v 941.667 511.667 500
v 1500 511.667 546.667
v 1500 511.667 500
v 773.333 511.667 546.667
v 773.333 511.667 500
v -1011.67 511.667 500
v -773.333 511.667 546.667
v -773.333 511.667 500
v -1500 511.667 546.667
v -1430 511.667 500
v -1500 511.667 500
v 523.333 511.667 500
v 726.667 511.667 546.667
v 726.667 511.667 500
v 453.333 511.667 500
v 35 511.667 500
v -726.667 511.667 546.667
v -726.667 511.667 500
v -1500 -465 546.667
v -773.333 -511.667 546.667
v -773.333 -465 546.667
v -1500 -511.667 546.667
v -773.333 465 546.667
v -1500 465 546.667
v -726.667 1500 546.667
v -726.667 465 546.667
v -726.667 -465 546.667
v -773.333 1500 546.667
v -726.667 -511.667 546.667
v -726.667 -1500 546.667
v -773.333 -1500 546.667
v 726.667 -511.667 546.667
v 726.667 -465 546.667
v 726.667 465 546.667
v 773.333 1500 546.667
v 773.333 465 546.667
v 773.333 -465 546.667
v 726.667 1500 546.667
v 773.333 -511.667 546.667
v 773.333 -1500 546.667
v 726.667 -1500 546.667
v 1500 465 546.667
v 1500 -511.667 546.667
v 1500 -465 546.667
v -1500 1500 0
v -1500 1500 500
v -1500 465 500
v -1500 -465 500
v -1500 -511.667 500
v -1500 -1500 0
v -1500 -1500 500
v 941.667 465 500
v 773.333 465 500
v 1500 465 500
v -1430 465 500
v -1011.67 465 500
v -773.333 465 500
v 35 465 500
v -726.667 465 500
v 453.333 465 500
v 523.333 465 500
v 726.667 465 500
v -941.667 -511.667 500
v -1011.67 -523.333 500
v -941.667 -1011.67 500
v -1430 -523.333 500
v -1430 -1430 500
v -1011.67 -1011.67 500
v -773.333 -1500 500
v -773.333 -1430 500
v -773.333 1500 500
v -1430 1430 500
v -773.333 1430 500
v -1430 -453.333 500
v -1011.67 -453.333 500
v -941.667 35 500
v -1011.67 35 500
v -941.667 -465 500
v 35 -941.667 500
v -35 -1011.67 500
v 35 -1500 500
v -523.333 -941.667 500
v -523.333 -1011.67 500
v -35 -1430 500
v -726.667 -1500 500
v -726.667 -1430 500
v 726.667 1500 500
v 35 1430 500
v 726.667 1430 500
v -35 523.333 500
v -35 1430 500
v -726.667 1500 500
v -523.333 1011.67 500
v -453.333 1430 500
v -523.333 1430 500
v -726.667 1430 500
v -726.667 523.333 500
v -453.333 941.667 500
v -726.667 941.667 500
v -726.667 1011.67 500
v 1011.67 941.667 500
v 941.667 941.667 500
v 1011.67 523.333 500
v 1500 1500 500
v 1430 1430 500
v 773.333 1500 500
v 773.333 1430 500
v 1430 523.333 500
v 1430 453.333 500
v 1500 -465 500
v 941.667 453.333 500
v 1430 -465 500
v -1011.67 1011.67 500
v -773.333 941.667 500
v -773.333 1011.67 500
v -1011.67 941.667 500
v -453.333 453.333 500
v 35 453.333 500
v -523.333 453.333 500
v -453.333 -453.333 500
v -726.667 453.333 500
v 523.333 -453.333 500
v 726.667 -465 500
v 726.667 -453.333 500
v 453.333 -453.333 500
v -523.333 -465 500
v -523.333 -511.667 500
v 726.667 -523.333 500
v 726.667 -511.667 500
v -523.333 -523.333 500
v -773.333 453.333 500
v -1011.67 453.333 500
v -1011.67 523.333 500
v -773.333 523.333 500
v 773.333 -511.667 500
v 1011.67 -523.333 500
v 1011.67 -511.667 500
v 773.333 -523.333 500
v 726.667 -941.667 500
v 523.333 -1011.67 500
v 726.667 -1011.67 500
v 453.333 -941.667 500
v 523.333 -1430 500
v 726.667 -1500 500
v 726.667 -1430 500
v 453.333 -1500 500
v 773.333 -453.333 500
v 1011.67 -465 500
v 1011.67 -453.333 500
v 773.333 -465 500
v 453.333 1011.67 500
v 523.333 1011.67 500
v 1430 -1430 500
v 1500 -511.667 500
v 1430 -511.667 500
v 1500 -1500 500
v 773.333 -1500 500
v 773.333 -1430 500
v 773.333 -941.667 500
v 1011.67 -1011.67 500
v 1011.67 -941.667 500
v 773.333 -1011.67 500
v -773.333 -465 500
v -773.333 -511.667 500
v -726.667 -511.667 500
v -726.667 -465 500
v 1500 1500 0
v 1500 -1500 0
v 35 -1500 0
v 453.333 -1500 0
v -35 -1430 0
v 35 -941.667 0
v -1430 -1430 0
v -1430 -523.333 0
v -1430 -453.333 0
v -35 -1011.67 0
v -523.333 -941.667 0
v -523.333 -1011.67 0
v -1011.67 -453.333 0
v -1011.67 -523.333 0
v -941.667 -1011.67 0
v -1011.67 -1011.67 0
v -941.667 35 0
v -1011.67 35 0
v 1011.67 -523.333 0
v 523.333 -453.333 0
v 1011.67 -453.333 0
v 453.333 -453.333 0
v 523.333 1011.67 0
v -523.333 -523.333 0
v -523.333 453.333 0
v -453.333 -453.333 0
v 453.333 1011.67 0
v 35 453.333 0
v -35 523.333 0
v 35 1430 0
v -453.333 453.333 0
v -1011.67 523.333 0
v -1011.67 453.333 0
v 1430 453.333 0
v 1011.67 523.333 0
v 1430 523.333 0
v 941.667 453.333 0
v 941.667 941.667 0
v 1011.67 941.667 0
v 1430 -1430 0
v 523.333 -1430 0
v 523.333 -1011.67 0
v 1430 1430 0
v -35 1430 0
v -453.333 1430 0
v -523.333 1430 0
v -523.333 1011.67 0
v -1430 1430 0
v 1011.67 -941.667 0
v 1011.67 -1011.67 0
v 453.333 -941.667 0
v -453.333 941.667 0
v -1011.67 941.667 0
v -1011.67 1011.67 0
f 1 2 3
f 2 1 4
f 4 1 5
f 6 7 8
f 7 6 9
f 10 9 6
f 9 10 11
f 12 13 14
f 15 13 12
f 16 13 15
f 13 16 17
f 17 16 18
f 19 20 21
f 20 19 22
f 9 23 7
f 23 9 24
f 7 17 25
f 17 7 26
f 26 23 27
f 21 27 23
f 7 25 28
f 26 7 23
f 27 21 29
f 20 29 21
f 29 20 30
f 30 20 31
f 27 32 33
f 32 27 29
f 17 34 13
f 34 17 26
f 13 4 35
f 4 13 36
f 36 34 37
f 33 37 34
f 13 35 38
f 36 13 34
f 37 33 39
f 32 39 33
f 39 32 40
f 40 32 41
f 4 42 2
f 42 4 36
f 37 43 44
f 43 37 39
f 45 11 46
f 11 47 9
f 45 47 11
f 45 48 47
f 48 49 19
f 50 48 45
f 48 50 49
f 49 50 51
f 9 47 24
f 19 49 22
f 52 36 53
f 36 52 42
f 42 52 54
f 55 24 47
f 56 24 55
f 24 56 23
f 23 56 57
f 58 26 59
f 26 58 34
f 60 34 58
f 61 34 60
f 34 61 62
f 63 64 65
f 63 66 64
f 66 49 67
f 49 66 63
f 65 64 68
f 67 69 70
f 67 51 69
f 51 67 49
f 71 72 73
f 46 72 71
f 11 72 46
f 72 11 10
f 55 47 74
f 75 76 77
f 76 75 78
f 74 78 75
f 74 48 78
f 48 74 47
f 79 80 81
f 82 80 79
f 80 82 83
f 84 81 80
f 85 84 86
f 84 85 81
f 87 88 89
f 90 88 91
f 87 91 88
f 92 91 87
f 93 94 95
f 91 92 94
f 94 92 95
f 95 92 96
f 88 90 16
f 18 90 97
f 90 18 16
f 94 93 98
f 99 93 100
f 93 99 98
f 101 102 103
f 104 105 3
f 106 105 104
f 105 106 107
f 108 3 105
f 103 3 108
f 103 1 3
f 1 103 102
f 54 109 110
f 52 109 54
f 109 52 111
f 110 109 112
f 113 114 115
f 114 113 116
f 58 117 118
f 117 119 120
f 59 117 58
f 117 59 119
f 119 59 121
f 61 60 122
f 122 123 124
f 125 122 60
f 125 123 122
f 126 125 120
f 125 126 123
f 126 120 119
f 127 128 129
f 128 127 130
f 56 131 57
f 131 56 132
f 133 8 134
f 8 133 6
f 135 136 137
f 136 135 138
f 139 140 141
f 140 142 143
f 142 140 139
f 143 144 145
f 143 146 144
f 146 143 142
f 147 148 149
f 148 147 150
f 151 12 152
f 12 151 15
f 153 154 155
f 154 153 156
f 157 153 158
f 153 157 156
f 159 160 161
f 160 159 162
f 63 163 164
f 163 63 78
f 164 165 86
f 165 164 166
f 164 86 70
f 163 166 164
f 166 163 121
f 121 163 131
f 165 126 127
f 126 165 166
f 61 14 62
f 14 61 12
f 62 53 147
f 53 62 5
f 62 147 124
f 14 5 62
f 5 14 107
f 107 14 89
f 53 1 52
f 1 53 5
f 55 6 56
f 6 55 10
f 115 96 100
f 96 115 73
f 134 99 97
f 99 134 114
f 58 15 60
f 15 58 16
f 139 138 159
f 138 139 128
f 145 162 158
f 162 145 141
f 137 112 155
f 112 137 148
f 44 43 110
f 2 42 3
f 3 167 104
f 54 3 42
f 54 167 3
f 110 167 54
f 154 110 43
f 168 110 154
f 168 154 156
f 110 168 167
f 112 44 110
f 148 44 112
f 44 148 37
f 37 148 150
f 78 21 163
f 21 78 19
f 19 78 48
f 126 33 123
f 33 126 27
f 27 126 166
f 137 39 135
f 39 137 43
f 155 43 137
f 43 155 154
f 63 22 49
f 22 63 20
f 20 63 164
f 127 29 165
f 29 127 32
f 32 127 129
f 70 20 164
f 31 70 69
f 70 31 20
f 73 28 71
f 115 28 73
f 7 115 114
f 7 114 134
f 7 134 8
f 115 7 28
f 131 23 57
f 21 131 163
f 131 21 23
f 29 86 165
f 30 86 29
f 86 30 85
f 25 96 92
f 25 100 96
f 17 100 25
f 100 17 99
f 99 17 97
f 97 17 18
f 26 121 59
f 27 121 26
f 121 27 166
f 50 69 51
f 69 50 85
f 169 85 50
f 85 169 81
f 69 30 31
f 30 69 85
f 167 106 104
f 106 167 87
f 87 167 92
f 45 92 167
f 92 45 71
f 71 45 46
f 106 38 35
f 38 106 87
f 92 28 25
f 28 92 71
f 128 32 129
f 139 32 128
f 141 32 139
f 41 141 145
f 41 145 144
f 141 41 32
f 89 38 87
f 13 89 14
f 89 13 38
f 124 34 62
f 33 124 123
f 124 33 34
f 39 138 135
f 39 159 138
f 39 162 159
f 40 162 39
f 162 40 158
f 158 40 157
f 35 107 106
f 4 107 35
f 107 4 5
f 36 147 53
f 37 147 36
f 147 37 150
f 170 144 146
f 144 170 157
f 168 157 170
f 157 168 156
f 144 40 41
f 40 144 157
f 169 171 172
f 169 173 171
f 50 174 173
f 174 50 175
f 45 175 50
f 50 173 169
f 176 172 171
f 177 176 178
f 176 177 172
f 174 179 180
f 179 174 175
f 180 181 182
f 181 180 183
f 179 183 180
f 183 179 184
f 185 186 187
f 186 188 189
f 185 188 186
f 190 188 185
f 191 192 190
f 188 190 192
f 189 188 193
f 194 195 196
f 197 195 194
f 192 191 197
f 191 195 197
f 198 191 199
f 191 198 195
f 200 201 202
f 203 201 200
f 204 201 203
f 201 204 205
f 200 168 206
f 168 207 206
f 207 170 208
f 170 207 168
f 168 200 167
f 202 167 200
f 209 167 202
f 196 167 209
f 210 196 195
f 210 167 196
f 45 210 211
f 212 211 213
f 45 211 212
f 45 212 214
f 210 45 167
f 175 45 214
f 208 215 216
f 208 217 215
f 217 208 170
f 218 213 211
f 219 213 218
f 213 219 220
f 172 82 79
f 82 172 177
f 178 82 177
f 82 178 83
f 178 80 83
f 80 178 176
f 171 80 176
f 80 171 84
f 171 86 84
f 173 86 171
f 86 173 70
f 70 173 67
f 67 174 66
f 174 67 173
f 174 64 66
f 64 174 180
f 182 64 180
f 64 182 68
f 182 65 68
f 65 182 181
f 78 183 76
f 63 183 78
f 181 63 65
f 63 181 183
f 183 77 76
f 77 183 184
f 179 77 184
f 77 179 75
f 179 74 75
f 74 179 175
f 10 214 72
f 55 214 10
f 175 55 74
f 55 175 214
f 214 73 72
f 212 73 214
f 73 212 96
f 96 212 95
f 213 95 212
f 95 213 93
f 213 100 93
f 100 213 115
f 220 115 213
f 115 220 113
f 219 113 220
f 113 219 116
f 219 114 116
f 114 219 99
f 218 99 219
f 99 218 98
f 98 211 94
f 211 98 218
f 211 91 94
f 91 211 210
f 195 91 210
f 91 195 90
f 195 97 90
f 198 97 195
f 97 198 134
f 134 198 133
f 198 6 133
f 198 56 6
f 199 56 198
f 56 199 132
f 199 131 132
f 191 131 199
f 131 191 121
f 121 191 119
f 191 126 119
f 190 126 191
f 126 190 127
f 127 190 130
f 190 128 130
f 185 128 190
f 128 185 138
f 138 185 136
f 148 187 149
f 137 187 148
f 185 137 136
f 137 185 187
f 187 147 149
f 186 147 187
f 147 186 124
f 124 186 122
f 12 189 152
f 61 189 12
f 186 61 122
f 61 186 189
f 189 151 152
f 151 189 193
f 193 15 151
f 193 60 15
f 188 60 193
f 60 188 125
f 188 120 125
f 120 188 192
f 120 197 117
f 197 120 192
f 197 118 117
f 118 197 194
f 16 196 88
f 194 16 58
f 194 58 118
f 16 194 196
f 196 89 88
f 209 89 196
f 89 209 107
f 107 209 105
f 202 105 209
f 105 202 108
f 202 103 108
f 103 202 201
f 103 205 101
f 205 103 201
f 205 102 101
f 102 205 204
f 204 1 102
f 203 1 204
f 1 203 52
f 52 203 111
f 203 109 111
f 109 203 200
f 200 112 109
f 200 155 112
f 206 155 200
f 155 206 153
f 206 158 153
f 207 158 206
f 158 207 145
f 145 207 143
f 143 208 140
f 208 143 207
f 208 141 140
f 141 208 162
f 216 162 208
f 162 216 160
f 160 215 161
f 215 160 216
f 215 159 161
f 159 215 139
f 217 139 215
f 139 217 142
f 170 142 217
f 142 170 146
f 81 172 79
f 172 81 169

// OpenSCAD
width=3000;
wall_thickness=70;

module doolhofje(tw=width,w=wall_thickness){
    c=(tw-7*w)/6;
    h=tw/6;
    union() {
        translate([0,(tw-w)/6,h+2*w/6]) rotate([0,0,90]) cube([2*w/3,tw,2*w/3],true);
        translate([0,(tw-w)/-6,h+2*w/6]) rotate([0,0,90]) cube([2*w/3,tw,2*w/3],true);
        translate([tw/-4,0,h+2*w/6]) cube([2*w/3,tw,2*w/3],true);
        translate([tw/4,0,h+2*w/6]) cube([2*w/3,tw,2*w/3],true);
        linear_extrude(h) translate([-tw/2,-tw/2]) polygon([
            //0-10:
            [0,0],
            [3*c+4*w,0],
            [3*c+4*w,c+2*w],
            [2*c+2*w,c+2*w],
            [2*c+2*w,c+w],
            [3*c+3*w,c+w],
            [3*c+3*w,w],
            [w,w],
            [w,2*c+2*w],
            [c+w,2*c+2*w],
            //11-20:
            [c+w,c+w],
            [c+2*w,c+w],
            [c+2*w,3*c+4*w],
            [c+w,3*c+4*w],
            [c+w,2*c+3*w],
            [w,2*c+3*w],
            [w,6*c+6*w],
            [2*c+2*w,6*c+6*w],
            [2*c+2*w,5*c+6*w],
            [c+w,5*c+6*w],
            //21-30:
            [c+w,5*c+5*w],
            [2*c+3*w,5*c+5*w],
            [2*c+3*w,6*c+6*w],
            [3*c+3*w,6*c+6*w],
            [3*c+3*w,4*c+5*w],
            [c+w,4*c+5*w],
            [c+w,4*c+4*w],
            [2*c+2*w,4*c+4*w],
            [2*c+2*w,2*c+2*w],
            [5*c+6*w,2*c+2*w],
            //31-40:
            [5*c+6*w,2*c+3*w],
            [4*c+5*w,2*c+3*w],
            [4*c+5*w,5*c+6*w],
            [4*c+4*w,5*c+6*w],
            [4*c+4*w,2*c+3*w],
            [2*c+3*w,2*c+3*w],
            [2*c+3*w,4*c+4*w],
            [3*c+4*w,4*c+4*w],
            [3*c+4*w,6*c+6*w],
            [6*c+6*w,6*c+6*w],
            //41-50:
            [6*c+6*w,4*c+5*w],
            [5*c+6*w,4*c+5*w],
            [5*c+6*w,5*c+5*w],
            [5*c+5*w,5*c+5*w],
            [5*c+5*w,4*c+4*w],
            [6*c+6*w,4*c+4*w],
            [6*c+6*w,w],
            [4*c+5*w,w],
            [4*c+5*w,c+w],
            [5*c+6*w,c+w],
            //50-56:
            [5*c+6*w,c+2*w],
            [4*c+4*w,c+2*w],
            [4*c+4*w,0],
            [6*c+7*w,0],
            [6*c+7*w,6*c+7*w],
            [0,6*c+7*w]
        ]);
    }
}
doolhofje();
